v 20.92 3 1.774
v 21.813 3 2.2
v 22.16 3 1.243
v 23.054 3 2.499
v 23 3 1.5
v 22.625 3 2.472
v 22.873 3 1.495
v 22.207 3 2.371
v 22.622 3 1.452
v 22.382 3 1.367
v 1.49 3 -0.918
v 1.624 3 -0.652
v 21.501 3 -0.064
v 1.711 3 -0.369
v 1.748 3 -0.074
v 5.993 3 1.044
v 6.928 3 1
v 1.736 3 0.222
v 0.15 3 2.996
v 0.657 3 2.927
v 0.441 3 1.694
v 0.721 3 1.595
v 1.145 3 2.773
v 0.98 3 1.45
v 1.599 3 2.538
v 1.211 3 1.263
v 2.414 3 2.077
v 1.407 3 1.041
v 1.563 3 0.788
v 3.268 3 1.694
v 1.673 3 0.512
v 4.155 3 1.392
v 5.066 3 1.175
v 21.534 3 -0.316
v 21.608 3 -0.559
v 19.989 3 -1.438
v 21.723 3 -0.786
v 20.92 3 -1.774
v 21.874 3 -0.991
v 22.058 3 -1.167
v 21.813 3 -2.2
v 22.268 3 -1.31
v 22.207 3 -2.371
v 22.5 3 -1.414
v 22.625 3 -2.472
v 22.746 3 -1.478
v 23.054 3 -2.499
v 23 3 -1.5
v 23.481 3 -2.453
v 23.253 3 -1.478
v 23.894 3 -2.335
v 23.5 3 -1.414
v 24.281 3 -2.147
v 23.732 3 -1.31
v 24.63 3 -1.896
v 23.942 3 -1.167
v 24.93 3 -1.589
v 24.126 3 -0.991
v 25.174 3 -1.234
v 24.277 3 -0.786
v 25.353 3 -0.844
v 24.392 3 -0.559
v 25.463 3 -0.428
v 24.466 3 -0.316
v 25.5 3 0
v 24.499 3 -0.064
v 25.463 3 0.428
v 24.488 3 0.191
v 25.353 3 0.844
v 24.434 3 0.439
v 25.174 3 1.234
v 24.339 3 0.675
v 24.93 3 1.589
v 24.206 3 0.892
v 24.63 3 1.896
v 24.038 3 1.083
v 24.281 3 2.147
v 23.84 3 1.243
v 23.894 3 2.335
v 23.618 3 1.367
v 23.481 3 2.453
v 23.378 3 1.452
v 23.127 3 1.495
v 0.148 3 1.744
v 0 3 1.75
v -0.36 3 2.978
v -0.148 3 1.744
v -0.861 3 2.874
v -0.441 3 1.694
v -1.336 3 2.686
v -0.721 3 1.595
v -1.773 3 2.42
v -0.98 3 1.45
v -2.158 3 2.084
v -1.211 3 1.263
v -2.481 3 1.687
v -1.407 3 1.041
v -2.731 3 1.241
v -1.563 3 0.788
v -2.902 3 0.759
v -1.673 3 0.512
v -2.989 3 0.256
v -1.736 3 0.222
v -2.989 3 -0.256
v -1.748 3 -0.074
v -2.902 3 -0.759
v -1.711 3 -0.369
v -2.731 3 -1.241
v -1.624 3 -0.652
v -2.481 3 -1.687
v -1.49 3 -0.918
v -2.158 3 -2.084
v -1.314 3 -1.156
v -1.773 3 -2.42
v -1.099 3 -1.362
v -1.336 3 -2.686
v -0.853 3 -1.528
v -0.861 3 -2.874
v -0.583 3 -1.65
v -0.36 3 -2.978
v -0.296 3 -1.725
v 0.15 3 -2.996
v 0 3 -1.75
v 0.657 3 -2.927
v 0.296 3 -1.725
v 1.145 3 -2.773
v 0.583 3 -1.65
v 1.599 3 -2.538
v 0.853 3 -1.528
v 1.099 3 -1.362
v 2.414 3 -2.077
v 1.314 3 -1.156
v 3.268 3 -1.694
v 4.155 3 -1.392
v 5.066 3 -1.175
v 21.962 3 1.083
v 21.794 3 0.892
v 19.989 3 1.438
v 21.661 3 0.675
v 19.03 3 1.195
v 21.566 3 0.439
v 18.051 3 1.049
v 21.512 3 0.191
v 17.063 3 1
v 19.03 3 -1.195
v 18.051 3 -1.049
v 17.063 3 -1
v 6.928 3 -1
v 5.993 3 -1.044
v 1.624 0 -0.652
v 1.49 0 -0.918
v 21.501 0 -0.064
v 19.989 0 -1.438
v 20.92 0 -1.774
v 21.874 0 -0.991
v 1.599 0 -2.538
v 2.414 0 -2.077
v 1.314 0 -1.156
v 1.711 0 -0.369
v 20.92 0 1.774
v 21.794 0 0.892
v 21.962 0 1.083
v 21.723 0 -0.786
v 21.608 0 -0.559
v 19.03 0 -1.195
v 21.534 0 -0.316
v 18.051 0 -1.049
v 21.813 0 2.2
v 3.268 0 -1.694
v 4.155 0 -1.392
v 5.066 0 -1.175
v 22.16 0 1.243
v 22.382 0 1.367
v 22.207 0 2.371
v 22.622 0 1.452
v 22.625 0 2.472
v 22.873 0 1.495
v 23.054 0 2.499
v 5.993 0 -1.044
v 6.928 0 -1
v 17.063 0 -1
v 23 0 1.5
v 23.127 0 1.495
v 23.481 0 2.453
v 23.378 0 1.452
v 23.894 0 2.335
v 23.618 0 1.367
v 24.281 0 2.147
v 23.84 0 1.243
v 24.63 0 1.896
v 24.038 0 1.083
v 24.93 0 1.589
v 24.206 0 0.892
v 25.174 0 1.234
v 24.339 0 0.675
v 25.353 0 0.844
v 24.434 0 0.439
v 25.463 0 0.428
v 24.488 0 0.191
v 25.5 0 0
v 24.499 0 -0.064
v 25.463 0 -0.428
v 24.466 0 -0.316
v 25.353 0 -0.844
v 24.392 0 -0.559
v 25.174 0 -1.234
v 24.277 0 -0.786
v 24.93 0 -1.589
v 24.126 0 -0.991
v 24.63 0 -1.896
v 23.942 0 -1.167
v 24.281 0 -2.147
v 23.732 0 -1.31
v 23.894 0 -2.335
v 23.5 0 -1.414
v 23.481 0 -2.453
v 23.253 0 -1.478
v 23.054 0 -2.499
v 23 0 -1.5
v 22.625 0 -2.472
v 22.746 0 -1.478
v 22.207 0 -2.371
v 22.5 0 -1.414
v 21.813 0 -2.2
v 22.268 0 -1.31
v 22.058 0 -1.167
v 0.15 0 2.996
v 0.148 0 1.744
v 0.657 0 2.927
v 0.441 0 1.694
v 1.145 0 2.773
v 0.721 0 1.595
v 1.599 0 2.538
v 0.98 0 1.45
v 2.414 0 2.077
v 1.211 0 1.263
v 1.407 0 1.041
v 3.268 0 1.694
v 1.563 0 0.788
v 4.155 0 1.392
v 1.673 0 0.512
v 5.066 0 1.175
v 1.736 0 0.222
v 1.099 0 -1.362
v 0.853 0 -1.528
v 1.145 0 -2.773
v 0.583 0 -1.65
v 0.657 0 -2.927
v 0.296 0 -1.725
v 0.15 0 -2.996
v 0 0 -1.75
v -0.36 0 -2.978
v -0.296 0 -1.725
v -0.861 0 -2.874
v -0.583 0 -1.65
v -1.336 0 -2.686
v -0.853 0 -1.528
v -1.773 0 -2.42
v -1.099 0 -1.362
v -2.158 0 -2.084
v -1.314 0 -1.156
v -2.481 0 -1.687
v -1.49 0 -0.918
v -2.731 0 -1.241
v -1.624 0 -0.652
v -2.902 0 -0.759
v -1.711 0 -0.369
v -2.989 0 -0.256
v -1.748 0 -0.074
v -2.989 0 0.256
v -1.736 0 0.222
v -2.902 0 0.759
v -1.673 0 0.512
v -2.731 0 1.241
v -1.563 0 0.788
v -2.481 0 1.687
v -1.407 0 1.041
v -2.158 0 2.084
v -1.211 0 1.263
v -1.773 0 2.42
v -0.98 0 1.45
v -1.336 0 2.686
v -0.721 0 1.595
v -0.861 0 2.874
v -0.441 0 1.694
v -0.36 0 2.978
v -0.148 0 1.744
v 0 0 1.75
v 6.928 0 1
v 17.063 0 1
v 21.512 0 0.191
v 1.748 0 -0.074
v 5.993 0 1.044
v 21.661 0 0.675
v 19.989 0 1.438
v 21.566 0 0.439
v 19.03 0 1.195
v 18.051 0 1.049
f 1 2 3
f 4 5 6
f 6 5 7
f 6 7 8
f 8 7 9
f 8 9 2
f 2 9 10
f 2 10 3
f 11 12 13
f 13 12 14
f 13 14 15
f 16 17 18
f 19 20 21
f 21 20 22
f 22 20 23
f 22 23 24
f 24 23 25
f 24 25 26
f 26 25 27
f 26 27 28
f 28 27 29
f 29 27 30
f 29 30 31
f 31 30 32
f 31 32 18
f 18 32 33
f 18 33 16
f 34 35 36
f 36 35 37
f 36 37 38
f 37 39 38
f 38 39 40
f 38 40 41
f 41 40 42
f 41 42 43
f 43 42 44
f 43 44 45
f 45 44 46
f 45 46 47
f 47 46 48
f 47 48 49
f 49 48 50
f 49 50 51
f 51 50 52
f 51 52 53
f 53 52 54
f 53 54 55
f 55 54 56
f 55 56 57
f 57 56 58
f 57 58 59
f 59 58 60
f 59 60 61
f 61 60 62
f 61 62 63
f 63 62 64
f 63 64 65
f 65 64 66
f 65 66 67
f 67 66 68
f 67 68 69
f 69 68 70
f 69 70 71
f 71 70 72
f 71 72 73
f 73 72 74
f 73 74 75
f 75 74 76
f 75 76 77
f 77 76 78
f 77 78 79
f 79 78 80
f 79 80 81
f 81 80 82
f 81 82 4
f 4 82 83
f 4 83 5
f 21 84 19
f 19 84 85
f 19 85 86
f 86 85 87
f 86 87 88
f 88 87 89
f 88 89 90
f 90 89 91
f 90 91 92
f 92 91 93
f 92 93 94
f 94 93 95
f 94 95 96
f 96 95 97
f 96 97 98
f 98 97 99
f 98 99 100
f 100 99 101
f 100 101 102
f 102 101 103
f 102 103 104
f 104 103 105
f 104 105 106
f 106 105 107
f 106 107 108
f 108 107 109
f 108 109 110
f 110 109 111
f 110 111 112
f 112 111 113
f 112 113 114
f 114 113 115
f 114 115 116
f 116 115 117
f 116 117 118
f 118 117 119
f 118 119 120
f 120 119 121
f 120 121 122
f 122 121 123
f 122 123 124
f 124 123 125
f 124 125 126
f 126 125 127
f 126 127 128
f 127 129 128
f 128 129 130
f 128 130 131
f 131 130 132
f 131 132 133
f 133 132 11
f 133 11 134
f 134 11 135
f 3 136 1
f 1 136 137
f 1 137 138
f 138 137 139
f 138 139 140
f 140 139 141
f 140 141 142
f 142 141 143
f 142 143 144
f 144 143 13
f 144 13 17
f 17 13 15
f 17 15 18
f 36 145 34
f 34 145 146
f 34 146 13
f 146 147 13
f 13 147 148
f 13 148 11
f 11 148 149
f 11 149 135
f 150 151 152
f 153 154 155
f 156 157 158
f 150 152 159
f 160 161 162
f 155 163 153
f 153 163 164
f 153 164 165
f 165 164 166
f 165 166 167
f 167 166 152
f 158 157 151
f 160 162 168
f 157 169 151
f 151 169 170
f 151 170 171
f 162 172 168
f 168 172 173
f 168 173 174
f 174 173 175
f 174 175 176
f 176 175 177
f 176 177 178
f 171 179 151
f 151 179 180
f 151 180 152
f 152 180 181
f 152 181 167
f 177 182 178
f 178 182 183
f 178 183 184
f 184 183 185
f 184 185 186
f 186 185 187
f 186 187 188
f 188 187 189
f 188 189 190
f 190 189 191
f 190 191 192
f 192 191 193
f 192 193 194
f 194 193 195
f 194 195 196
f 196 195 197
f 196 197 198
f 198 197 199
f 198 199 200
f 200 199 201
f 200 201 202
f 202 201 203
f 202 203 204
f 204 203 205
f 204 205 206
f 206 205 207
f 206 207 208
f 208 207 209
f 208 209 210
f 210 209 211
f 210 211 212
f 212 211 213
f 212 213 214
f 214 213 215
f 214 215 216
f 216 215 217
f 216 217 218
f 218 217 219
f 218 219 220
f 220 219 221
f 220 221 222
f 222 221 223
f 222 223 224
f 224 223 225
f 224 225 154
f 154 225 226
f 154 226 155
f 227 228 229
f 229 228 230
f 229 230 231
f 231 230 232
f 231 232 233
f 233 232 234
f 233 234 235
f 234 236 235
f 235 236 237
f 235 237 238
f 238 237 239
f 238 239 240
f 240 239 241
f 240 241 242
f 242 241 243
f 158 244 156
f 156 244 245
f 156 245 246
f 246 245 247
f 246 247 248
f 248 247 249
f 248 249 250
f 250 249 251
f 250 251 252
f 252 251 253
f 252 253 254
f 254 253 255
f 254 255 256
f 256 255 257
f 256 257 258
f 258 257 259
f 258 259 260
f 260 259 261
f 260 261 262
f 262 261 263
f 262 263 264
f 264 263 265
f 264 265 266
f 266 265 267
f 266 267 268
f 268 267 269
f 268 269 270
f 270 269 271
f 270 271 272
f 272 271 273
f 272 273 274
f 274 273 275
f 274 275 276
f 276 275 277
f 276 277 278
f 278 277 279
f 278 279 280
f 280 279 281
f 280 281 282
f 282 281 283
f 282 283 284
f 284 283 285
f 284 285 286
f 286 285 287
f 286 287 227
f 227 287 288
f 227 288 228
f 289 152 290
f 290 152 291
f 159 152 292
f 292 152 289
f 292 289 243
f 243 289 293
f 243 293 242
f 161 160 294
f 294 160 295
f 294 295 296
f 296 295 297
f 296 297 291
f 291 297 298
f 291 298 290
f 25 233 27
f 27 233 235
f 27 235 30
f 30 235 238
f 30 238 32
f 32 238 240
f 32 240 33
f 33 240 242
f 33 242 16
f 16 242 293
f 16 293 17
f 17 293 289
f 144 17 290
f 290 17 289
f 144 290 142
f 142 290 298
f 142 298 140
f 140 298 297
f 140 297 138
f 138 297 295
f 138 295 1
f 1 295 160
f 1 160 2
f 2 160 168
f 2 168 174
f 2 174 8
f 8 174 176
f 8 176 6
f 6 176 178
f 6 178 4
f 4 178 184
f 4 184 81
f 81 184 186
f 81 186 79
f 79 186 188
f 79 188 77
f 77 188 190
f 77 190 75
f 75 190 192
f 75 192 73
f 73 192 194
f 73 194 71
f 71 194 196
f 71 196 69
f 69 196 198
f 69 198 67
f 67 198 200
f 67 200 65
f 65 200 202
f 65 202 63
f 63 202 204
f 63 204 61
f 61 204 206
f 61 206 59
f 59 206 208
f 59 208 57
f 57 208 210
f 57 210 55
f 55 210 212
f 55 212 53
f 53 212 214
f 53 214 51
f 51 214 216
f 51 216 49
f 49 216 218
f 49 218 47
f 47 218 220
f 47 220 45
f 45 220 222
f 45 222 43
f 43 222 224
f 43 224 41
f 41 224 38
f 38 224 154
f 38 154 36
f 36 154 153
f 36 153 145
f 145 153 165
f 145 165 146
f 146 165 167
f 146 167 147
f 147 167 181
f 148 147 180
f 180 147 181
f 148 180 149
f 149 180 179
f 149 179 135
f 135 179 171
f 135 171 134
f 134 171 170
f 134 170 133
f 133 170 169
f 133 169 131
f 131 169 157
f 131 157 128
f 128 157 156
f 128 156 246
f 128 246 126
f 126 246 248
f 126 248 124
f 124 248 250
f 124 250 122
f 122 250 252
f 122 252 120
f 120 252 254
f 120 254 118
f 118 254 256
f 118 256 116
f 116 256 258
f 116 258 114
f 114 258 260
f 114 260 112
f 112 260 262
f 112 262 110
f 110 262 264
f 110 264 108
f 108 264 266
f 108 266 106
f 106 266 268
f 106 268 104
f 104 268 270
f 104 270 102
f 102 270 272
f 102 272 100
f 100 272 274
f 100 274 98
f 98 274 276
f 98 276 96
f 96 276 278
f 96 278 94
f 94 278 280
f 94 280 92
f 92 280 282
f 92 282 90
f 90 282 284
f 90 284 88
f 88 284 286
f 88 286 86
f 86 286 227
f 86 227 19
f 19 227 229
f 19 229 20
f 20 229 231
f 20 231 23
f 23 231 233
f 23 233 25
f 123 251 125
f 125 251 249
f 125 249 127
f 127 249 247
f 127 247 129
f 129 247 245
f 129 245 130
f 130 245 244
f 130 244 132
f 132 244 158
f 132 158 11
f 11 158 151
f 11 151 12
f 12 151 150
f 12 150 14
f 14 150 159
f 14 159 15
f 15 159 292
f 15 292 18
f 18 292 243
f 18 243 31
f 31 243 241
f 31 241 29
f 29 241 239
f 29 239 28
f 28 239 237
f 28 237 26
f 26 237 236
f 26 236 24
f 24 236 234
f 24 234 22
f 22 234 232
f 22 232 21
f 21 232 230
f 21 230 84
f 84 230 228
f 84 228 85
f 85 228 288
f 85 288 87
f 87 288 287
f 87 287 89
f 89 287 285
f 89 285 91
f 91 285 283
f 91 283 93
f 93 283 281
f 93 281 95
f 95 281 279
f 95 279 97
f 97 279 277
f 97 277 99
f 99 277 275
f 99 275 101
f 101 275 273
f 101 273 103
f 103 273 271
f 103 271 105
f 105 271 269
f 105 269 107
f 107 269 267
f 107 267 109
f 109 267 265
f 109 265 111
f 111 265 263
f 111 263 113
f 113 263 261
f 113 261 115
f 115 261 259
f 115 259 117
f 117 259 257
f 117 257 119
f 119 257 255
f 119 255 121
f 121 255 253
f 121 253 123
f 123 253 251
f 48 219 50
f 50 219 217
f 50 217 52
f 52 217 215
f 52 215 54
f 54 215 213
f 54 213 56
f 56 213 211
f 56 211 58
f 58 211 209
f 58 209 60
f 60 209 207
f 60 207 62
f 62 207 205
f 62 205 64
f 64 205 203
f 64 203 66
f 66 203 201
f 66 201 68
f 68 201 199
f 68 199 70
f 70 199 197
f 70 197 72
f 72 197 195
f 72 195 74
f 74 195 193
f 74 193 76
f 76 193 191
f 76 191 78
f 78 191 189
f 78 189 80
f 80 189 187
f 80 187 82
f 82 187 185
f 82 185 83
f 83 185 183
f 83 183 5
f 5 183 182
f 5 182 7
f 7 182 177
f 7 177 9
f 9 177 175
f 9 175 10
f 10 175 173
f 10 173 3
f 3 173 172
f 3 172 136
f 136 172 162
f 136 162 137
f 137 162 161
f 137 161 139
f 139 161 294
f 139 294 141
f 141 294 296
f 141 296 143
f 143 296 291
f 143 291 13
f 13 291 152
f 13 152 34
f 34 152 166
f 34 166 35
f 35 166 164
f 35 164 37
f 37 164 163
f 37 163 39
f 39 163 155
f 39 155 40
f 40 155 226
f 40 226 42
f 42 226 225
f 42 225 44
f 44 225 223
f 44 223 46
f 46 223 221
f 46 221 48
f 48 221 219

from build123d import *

# Parameters (mm, degrees)
SKETCH1_R           = 1.75
SKETCH1_R_2         = 1.5
BOSS_EXTRUDE1_DEPTH = 3


with BuildPart() as part:
    # Sketch1 → Boss-Extrude1 (new body)
    with BuildSketch(Plane(origin=(0, 0, 0), x_dir=(1, 0, 0), z_dir=(0, 1, 0))):
        with BuildLine():
            Line((6.92820323, 1), (17.062828956, 1))
            ThreePointArc((17.062828956, 1), (19.512318699, 1.304640285), (21.812565791, 2.2))
            ThreePointArc((21.812565791, 2.2), (25.5, 0), (21.812565791, -2.2))
            ThreePointArc((21.812565791, -2.2), (19.512318699, -1.304640285), (17.062828956, -1))
            Line((17.062828956, -1), (6.92820323, -1))
            ThreePointArc((6.92820323, -1), (4.154702249, -1.392310772), (1.59881613, -2.538461538))
            ThreePointArc((1.59881613, -2.538461538), (-3, 0), (1.59881613, 2.538461538))
            ThreePointArc((1.59881613, 2.538461538), (4.154702249, 1.392310772), (6.92820323, 1))
        make_face()
        Circle(SKETCH1_R, mode=Mode.SUBTRACT)
        with Locations((23, 0)):
            Circle(SKETCH1_R_2, mode=Mode.SUBTRACT)
    extrude(amount=BOSS_EXTRUDE1_DEPTH)


solid = part.part
